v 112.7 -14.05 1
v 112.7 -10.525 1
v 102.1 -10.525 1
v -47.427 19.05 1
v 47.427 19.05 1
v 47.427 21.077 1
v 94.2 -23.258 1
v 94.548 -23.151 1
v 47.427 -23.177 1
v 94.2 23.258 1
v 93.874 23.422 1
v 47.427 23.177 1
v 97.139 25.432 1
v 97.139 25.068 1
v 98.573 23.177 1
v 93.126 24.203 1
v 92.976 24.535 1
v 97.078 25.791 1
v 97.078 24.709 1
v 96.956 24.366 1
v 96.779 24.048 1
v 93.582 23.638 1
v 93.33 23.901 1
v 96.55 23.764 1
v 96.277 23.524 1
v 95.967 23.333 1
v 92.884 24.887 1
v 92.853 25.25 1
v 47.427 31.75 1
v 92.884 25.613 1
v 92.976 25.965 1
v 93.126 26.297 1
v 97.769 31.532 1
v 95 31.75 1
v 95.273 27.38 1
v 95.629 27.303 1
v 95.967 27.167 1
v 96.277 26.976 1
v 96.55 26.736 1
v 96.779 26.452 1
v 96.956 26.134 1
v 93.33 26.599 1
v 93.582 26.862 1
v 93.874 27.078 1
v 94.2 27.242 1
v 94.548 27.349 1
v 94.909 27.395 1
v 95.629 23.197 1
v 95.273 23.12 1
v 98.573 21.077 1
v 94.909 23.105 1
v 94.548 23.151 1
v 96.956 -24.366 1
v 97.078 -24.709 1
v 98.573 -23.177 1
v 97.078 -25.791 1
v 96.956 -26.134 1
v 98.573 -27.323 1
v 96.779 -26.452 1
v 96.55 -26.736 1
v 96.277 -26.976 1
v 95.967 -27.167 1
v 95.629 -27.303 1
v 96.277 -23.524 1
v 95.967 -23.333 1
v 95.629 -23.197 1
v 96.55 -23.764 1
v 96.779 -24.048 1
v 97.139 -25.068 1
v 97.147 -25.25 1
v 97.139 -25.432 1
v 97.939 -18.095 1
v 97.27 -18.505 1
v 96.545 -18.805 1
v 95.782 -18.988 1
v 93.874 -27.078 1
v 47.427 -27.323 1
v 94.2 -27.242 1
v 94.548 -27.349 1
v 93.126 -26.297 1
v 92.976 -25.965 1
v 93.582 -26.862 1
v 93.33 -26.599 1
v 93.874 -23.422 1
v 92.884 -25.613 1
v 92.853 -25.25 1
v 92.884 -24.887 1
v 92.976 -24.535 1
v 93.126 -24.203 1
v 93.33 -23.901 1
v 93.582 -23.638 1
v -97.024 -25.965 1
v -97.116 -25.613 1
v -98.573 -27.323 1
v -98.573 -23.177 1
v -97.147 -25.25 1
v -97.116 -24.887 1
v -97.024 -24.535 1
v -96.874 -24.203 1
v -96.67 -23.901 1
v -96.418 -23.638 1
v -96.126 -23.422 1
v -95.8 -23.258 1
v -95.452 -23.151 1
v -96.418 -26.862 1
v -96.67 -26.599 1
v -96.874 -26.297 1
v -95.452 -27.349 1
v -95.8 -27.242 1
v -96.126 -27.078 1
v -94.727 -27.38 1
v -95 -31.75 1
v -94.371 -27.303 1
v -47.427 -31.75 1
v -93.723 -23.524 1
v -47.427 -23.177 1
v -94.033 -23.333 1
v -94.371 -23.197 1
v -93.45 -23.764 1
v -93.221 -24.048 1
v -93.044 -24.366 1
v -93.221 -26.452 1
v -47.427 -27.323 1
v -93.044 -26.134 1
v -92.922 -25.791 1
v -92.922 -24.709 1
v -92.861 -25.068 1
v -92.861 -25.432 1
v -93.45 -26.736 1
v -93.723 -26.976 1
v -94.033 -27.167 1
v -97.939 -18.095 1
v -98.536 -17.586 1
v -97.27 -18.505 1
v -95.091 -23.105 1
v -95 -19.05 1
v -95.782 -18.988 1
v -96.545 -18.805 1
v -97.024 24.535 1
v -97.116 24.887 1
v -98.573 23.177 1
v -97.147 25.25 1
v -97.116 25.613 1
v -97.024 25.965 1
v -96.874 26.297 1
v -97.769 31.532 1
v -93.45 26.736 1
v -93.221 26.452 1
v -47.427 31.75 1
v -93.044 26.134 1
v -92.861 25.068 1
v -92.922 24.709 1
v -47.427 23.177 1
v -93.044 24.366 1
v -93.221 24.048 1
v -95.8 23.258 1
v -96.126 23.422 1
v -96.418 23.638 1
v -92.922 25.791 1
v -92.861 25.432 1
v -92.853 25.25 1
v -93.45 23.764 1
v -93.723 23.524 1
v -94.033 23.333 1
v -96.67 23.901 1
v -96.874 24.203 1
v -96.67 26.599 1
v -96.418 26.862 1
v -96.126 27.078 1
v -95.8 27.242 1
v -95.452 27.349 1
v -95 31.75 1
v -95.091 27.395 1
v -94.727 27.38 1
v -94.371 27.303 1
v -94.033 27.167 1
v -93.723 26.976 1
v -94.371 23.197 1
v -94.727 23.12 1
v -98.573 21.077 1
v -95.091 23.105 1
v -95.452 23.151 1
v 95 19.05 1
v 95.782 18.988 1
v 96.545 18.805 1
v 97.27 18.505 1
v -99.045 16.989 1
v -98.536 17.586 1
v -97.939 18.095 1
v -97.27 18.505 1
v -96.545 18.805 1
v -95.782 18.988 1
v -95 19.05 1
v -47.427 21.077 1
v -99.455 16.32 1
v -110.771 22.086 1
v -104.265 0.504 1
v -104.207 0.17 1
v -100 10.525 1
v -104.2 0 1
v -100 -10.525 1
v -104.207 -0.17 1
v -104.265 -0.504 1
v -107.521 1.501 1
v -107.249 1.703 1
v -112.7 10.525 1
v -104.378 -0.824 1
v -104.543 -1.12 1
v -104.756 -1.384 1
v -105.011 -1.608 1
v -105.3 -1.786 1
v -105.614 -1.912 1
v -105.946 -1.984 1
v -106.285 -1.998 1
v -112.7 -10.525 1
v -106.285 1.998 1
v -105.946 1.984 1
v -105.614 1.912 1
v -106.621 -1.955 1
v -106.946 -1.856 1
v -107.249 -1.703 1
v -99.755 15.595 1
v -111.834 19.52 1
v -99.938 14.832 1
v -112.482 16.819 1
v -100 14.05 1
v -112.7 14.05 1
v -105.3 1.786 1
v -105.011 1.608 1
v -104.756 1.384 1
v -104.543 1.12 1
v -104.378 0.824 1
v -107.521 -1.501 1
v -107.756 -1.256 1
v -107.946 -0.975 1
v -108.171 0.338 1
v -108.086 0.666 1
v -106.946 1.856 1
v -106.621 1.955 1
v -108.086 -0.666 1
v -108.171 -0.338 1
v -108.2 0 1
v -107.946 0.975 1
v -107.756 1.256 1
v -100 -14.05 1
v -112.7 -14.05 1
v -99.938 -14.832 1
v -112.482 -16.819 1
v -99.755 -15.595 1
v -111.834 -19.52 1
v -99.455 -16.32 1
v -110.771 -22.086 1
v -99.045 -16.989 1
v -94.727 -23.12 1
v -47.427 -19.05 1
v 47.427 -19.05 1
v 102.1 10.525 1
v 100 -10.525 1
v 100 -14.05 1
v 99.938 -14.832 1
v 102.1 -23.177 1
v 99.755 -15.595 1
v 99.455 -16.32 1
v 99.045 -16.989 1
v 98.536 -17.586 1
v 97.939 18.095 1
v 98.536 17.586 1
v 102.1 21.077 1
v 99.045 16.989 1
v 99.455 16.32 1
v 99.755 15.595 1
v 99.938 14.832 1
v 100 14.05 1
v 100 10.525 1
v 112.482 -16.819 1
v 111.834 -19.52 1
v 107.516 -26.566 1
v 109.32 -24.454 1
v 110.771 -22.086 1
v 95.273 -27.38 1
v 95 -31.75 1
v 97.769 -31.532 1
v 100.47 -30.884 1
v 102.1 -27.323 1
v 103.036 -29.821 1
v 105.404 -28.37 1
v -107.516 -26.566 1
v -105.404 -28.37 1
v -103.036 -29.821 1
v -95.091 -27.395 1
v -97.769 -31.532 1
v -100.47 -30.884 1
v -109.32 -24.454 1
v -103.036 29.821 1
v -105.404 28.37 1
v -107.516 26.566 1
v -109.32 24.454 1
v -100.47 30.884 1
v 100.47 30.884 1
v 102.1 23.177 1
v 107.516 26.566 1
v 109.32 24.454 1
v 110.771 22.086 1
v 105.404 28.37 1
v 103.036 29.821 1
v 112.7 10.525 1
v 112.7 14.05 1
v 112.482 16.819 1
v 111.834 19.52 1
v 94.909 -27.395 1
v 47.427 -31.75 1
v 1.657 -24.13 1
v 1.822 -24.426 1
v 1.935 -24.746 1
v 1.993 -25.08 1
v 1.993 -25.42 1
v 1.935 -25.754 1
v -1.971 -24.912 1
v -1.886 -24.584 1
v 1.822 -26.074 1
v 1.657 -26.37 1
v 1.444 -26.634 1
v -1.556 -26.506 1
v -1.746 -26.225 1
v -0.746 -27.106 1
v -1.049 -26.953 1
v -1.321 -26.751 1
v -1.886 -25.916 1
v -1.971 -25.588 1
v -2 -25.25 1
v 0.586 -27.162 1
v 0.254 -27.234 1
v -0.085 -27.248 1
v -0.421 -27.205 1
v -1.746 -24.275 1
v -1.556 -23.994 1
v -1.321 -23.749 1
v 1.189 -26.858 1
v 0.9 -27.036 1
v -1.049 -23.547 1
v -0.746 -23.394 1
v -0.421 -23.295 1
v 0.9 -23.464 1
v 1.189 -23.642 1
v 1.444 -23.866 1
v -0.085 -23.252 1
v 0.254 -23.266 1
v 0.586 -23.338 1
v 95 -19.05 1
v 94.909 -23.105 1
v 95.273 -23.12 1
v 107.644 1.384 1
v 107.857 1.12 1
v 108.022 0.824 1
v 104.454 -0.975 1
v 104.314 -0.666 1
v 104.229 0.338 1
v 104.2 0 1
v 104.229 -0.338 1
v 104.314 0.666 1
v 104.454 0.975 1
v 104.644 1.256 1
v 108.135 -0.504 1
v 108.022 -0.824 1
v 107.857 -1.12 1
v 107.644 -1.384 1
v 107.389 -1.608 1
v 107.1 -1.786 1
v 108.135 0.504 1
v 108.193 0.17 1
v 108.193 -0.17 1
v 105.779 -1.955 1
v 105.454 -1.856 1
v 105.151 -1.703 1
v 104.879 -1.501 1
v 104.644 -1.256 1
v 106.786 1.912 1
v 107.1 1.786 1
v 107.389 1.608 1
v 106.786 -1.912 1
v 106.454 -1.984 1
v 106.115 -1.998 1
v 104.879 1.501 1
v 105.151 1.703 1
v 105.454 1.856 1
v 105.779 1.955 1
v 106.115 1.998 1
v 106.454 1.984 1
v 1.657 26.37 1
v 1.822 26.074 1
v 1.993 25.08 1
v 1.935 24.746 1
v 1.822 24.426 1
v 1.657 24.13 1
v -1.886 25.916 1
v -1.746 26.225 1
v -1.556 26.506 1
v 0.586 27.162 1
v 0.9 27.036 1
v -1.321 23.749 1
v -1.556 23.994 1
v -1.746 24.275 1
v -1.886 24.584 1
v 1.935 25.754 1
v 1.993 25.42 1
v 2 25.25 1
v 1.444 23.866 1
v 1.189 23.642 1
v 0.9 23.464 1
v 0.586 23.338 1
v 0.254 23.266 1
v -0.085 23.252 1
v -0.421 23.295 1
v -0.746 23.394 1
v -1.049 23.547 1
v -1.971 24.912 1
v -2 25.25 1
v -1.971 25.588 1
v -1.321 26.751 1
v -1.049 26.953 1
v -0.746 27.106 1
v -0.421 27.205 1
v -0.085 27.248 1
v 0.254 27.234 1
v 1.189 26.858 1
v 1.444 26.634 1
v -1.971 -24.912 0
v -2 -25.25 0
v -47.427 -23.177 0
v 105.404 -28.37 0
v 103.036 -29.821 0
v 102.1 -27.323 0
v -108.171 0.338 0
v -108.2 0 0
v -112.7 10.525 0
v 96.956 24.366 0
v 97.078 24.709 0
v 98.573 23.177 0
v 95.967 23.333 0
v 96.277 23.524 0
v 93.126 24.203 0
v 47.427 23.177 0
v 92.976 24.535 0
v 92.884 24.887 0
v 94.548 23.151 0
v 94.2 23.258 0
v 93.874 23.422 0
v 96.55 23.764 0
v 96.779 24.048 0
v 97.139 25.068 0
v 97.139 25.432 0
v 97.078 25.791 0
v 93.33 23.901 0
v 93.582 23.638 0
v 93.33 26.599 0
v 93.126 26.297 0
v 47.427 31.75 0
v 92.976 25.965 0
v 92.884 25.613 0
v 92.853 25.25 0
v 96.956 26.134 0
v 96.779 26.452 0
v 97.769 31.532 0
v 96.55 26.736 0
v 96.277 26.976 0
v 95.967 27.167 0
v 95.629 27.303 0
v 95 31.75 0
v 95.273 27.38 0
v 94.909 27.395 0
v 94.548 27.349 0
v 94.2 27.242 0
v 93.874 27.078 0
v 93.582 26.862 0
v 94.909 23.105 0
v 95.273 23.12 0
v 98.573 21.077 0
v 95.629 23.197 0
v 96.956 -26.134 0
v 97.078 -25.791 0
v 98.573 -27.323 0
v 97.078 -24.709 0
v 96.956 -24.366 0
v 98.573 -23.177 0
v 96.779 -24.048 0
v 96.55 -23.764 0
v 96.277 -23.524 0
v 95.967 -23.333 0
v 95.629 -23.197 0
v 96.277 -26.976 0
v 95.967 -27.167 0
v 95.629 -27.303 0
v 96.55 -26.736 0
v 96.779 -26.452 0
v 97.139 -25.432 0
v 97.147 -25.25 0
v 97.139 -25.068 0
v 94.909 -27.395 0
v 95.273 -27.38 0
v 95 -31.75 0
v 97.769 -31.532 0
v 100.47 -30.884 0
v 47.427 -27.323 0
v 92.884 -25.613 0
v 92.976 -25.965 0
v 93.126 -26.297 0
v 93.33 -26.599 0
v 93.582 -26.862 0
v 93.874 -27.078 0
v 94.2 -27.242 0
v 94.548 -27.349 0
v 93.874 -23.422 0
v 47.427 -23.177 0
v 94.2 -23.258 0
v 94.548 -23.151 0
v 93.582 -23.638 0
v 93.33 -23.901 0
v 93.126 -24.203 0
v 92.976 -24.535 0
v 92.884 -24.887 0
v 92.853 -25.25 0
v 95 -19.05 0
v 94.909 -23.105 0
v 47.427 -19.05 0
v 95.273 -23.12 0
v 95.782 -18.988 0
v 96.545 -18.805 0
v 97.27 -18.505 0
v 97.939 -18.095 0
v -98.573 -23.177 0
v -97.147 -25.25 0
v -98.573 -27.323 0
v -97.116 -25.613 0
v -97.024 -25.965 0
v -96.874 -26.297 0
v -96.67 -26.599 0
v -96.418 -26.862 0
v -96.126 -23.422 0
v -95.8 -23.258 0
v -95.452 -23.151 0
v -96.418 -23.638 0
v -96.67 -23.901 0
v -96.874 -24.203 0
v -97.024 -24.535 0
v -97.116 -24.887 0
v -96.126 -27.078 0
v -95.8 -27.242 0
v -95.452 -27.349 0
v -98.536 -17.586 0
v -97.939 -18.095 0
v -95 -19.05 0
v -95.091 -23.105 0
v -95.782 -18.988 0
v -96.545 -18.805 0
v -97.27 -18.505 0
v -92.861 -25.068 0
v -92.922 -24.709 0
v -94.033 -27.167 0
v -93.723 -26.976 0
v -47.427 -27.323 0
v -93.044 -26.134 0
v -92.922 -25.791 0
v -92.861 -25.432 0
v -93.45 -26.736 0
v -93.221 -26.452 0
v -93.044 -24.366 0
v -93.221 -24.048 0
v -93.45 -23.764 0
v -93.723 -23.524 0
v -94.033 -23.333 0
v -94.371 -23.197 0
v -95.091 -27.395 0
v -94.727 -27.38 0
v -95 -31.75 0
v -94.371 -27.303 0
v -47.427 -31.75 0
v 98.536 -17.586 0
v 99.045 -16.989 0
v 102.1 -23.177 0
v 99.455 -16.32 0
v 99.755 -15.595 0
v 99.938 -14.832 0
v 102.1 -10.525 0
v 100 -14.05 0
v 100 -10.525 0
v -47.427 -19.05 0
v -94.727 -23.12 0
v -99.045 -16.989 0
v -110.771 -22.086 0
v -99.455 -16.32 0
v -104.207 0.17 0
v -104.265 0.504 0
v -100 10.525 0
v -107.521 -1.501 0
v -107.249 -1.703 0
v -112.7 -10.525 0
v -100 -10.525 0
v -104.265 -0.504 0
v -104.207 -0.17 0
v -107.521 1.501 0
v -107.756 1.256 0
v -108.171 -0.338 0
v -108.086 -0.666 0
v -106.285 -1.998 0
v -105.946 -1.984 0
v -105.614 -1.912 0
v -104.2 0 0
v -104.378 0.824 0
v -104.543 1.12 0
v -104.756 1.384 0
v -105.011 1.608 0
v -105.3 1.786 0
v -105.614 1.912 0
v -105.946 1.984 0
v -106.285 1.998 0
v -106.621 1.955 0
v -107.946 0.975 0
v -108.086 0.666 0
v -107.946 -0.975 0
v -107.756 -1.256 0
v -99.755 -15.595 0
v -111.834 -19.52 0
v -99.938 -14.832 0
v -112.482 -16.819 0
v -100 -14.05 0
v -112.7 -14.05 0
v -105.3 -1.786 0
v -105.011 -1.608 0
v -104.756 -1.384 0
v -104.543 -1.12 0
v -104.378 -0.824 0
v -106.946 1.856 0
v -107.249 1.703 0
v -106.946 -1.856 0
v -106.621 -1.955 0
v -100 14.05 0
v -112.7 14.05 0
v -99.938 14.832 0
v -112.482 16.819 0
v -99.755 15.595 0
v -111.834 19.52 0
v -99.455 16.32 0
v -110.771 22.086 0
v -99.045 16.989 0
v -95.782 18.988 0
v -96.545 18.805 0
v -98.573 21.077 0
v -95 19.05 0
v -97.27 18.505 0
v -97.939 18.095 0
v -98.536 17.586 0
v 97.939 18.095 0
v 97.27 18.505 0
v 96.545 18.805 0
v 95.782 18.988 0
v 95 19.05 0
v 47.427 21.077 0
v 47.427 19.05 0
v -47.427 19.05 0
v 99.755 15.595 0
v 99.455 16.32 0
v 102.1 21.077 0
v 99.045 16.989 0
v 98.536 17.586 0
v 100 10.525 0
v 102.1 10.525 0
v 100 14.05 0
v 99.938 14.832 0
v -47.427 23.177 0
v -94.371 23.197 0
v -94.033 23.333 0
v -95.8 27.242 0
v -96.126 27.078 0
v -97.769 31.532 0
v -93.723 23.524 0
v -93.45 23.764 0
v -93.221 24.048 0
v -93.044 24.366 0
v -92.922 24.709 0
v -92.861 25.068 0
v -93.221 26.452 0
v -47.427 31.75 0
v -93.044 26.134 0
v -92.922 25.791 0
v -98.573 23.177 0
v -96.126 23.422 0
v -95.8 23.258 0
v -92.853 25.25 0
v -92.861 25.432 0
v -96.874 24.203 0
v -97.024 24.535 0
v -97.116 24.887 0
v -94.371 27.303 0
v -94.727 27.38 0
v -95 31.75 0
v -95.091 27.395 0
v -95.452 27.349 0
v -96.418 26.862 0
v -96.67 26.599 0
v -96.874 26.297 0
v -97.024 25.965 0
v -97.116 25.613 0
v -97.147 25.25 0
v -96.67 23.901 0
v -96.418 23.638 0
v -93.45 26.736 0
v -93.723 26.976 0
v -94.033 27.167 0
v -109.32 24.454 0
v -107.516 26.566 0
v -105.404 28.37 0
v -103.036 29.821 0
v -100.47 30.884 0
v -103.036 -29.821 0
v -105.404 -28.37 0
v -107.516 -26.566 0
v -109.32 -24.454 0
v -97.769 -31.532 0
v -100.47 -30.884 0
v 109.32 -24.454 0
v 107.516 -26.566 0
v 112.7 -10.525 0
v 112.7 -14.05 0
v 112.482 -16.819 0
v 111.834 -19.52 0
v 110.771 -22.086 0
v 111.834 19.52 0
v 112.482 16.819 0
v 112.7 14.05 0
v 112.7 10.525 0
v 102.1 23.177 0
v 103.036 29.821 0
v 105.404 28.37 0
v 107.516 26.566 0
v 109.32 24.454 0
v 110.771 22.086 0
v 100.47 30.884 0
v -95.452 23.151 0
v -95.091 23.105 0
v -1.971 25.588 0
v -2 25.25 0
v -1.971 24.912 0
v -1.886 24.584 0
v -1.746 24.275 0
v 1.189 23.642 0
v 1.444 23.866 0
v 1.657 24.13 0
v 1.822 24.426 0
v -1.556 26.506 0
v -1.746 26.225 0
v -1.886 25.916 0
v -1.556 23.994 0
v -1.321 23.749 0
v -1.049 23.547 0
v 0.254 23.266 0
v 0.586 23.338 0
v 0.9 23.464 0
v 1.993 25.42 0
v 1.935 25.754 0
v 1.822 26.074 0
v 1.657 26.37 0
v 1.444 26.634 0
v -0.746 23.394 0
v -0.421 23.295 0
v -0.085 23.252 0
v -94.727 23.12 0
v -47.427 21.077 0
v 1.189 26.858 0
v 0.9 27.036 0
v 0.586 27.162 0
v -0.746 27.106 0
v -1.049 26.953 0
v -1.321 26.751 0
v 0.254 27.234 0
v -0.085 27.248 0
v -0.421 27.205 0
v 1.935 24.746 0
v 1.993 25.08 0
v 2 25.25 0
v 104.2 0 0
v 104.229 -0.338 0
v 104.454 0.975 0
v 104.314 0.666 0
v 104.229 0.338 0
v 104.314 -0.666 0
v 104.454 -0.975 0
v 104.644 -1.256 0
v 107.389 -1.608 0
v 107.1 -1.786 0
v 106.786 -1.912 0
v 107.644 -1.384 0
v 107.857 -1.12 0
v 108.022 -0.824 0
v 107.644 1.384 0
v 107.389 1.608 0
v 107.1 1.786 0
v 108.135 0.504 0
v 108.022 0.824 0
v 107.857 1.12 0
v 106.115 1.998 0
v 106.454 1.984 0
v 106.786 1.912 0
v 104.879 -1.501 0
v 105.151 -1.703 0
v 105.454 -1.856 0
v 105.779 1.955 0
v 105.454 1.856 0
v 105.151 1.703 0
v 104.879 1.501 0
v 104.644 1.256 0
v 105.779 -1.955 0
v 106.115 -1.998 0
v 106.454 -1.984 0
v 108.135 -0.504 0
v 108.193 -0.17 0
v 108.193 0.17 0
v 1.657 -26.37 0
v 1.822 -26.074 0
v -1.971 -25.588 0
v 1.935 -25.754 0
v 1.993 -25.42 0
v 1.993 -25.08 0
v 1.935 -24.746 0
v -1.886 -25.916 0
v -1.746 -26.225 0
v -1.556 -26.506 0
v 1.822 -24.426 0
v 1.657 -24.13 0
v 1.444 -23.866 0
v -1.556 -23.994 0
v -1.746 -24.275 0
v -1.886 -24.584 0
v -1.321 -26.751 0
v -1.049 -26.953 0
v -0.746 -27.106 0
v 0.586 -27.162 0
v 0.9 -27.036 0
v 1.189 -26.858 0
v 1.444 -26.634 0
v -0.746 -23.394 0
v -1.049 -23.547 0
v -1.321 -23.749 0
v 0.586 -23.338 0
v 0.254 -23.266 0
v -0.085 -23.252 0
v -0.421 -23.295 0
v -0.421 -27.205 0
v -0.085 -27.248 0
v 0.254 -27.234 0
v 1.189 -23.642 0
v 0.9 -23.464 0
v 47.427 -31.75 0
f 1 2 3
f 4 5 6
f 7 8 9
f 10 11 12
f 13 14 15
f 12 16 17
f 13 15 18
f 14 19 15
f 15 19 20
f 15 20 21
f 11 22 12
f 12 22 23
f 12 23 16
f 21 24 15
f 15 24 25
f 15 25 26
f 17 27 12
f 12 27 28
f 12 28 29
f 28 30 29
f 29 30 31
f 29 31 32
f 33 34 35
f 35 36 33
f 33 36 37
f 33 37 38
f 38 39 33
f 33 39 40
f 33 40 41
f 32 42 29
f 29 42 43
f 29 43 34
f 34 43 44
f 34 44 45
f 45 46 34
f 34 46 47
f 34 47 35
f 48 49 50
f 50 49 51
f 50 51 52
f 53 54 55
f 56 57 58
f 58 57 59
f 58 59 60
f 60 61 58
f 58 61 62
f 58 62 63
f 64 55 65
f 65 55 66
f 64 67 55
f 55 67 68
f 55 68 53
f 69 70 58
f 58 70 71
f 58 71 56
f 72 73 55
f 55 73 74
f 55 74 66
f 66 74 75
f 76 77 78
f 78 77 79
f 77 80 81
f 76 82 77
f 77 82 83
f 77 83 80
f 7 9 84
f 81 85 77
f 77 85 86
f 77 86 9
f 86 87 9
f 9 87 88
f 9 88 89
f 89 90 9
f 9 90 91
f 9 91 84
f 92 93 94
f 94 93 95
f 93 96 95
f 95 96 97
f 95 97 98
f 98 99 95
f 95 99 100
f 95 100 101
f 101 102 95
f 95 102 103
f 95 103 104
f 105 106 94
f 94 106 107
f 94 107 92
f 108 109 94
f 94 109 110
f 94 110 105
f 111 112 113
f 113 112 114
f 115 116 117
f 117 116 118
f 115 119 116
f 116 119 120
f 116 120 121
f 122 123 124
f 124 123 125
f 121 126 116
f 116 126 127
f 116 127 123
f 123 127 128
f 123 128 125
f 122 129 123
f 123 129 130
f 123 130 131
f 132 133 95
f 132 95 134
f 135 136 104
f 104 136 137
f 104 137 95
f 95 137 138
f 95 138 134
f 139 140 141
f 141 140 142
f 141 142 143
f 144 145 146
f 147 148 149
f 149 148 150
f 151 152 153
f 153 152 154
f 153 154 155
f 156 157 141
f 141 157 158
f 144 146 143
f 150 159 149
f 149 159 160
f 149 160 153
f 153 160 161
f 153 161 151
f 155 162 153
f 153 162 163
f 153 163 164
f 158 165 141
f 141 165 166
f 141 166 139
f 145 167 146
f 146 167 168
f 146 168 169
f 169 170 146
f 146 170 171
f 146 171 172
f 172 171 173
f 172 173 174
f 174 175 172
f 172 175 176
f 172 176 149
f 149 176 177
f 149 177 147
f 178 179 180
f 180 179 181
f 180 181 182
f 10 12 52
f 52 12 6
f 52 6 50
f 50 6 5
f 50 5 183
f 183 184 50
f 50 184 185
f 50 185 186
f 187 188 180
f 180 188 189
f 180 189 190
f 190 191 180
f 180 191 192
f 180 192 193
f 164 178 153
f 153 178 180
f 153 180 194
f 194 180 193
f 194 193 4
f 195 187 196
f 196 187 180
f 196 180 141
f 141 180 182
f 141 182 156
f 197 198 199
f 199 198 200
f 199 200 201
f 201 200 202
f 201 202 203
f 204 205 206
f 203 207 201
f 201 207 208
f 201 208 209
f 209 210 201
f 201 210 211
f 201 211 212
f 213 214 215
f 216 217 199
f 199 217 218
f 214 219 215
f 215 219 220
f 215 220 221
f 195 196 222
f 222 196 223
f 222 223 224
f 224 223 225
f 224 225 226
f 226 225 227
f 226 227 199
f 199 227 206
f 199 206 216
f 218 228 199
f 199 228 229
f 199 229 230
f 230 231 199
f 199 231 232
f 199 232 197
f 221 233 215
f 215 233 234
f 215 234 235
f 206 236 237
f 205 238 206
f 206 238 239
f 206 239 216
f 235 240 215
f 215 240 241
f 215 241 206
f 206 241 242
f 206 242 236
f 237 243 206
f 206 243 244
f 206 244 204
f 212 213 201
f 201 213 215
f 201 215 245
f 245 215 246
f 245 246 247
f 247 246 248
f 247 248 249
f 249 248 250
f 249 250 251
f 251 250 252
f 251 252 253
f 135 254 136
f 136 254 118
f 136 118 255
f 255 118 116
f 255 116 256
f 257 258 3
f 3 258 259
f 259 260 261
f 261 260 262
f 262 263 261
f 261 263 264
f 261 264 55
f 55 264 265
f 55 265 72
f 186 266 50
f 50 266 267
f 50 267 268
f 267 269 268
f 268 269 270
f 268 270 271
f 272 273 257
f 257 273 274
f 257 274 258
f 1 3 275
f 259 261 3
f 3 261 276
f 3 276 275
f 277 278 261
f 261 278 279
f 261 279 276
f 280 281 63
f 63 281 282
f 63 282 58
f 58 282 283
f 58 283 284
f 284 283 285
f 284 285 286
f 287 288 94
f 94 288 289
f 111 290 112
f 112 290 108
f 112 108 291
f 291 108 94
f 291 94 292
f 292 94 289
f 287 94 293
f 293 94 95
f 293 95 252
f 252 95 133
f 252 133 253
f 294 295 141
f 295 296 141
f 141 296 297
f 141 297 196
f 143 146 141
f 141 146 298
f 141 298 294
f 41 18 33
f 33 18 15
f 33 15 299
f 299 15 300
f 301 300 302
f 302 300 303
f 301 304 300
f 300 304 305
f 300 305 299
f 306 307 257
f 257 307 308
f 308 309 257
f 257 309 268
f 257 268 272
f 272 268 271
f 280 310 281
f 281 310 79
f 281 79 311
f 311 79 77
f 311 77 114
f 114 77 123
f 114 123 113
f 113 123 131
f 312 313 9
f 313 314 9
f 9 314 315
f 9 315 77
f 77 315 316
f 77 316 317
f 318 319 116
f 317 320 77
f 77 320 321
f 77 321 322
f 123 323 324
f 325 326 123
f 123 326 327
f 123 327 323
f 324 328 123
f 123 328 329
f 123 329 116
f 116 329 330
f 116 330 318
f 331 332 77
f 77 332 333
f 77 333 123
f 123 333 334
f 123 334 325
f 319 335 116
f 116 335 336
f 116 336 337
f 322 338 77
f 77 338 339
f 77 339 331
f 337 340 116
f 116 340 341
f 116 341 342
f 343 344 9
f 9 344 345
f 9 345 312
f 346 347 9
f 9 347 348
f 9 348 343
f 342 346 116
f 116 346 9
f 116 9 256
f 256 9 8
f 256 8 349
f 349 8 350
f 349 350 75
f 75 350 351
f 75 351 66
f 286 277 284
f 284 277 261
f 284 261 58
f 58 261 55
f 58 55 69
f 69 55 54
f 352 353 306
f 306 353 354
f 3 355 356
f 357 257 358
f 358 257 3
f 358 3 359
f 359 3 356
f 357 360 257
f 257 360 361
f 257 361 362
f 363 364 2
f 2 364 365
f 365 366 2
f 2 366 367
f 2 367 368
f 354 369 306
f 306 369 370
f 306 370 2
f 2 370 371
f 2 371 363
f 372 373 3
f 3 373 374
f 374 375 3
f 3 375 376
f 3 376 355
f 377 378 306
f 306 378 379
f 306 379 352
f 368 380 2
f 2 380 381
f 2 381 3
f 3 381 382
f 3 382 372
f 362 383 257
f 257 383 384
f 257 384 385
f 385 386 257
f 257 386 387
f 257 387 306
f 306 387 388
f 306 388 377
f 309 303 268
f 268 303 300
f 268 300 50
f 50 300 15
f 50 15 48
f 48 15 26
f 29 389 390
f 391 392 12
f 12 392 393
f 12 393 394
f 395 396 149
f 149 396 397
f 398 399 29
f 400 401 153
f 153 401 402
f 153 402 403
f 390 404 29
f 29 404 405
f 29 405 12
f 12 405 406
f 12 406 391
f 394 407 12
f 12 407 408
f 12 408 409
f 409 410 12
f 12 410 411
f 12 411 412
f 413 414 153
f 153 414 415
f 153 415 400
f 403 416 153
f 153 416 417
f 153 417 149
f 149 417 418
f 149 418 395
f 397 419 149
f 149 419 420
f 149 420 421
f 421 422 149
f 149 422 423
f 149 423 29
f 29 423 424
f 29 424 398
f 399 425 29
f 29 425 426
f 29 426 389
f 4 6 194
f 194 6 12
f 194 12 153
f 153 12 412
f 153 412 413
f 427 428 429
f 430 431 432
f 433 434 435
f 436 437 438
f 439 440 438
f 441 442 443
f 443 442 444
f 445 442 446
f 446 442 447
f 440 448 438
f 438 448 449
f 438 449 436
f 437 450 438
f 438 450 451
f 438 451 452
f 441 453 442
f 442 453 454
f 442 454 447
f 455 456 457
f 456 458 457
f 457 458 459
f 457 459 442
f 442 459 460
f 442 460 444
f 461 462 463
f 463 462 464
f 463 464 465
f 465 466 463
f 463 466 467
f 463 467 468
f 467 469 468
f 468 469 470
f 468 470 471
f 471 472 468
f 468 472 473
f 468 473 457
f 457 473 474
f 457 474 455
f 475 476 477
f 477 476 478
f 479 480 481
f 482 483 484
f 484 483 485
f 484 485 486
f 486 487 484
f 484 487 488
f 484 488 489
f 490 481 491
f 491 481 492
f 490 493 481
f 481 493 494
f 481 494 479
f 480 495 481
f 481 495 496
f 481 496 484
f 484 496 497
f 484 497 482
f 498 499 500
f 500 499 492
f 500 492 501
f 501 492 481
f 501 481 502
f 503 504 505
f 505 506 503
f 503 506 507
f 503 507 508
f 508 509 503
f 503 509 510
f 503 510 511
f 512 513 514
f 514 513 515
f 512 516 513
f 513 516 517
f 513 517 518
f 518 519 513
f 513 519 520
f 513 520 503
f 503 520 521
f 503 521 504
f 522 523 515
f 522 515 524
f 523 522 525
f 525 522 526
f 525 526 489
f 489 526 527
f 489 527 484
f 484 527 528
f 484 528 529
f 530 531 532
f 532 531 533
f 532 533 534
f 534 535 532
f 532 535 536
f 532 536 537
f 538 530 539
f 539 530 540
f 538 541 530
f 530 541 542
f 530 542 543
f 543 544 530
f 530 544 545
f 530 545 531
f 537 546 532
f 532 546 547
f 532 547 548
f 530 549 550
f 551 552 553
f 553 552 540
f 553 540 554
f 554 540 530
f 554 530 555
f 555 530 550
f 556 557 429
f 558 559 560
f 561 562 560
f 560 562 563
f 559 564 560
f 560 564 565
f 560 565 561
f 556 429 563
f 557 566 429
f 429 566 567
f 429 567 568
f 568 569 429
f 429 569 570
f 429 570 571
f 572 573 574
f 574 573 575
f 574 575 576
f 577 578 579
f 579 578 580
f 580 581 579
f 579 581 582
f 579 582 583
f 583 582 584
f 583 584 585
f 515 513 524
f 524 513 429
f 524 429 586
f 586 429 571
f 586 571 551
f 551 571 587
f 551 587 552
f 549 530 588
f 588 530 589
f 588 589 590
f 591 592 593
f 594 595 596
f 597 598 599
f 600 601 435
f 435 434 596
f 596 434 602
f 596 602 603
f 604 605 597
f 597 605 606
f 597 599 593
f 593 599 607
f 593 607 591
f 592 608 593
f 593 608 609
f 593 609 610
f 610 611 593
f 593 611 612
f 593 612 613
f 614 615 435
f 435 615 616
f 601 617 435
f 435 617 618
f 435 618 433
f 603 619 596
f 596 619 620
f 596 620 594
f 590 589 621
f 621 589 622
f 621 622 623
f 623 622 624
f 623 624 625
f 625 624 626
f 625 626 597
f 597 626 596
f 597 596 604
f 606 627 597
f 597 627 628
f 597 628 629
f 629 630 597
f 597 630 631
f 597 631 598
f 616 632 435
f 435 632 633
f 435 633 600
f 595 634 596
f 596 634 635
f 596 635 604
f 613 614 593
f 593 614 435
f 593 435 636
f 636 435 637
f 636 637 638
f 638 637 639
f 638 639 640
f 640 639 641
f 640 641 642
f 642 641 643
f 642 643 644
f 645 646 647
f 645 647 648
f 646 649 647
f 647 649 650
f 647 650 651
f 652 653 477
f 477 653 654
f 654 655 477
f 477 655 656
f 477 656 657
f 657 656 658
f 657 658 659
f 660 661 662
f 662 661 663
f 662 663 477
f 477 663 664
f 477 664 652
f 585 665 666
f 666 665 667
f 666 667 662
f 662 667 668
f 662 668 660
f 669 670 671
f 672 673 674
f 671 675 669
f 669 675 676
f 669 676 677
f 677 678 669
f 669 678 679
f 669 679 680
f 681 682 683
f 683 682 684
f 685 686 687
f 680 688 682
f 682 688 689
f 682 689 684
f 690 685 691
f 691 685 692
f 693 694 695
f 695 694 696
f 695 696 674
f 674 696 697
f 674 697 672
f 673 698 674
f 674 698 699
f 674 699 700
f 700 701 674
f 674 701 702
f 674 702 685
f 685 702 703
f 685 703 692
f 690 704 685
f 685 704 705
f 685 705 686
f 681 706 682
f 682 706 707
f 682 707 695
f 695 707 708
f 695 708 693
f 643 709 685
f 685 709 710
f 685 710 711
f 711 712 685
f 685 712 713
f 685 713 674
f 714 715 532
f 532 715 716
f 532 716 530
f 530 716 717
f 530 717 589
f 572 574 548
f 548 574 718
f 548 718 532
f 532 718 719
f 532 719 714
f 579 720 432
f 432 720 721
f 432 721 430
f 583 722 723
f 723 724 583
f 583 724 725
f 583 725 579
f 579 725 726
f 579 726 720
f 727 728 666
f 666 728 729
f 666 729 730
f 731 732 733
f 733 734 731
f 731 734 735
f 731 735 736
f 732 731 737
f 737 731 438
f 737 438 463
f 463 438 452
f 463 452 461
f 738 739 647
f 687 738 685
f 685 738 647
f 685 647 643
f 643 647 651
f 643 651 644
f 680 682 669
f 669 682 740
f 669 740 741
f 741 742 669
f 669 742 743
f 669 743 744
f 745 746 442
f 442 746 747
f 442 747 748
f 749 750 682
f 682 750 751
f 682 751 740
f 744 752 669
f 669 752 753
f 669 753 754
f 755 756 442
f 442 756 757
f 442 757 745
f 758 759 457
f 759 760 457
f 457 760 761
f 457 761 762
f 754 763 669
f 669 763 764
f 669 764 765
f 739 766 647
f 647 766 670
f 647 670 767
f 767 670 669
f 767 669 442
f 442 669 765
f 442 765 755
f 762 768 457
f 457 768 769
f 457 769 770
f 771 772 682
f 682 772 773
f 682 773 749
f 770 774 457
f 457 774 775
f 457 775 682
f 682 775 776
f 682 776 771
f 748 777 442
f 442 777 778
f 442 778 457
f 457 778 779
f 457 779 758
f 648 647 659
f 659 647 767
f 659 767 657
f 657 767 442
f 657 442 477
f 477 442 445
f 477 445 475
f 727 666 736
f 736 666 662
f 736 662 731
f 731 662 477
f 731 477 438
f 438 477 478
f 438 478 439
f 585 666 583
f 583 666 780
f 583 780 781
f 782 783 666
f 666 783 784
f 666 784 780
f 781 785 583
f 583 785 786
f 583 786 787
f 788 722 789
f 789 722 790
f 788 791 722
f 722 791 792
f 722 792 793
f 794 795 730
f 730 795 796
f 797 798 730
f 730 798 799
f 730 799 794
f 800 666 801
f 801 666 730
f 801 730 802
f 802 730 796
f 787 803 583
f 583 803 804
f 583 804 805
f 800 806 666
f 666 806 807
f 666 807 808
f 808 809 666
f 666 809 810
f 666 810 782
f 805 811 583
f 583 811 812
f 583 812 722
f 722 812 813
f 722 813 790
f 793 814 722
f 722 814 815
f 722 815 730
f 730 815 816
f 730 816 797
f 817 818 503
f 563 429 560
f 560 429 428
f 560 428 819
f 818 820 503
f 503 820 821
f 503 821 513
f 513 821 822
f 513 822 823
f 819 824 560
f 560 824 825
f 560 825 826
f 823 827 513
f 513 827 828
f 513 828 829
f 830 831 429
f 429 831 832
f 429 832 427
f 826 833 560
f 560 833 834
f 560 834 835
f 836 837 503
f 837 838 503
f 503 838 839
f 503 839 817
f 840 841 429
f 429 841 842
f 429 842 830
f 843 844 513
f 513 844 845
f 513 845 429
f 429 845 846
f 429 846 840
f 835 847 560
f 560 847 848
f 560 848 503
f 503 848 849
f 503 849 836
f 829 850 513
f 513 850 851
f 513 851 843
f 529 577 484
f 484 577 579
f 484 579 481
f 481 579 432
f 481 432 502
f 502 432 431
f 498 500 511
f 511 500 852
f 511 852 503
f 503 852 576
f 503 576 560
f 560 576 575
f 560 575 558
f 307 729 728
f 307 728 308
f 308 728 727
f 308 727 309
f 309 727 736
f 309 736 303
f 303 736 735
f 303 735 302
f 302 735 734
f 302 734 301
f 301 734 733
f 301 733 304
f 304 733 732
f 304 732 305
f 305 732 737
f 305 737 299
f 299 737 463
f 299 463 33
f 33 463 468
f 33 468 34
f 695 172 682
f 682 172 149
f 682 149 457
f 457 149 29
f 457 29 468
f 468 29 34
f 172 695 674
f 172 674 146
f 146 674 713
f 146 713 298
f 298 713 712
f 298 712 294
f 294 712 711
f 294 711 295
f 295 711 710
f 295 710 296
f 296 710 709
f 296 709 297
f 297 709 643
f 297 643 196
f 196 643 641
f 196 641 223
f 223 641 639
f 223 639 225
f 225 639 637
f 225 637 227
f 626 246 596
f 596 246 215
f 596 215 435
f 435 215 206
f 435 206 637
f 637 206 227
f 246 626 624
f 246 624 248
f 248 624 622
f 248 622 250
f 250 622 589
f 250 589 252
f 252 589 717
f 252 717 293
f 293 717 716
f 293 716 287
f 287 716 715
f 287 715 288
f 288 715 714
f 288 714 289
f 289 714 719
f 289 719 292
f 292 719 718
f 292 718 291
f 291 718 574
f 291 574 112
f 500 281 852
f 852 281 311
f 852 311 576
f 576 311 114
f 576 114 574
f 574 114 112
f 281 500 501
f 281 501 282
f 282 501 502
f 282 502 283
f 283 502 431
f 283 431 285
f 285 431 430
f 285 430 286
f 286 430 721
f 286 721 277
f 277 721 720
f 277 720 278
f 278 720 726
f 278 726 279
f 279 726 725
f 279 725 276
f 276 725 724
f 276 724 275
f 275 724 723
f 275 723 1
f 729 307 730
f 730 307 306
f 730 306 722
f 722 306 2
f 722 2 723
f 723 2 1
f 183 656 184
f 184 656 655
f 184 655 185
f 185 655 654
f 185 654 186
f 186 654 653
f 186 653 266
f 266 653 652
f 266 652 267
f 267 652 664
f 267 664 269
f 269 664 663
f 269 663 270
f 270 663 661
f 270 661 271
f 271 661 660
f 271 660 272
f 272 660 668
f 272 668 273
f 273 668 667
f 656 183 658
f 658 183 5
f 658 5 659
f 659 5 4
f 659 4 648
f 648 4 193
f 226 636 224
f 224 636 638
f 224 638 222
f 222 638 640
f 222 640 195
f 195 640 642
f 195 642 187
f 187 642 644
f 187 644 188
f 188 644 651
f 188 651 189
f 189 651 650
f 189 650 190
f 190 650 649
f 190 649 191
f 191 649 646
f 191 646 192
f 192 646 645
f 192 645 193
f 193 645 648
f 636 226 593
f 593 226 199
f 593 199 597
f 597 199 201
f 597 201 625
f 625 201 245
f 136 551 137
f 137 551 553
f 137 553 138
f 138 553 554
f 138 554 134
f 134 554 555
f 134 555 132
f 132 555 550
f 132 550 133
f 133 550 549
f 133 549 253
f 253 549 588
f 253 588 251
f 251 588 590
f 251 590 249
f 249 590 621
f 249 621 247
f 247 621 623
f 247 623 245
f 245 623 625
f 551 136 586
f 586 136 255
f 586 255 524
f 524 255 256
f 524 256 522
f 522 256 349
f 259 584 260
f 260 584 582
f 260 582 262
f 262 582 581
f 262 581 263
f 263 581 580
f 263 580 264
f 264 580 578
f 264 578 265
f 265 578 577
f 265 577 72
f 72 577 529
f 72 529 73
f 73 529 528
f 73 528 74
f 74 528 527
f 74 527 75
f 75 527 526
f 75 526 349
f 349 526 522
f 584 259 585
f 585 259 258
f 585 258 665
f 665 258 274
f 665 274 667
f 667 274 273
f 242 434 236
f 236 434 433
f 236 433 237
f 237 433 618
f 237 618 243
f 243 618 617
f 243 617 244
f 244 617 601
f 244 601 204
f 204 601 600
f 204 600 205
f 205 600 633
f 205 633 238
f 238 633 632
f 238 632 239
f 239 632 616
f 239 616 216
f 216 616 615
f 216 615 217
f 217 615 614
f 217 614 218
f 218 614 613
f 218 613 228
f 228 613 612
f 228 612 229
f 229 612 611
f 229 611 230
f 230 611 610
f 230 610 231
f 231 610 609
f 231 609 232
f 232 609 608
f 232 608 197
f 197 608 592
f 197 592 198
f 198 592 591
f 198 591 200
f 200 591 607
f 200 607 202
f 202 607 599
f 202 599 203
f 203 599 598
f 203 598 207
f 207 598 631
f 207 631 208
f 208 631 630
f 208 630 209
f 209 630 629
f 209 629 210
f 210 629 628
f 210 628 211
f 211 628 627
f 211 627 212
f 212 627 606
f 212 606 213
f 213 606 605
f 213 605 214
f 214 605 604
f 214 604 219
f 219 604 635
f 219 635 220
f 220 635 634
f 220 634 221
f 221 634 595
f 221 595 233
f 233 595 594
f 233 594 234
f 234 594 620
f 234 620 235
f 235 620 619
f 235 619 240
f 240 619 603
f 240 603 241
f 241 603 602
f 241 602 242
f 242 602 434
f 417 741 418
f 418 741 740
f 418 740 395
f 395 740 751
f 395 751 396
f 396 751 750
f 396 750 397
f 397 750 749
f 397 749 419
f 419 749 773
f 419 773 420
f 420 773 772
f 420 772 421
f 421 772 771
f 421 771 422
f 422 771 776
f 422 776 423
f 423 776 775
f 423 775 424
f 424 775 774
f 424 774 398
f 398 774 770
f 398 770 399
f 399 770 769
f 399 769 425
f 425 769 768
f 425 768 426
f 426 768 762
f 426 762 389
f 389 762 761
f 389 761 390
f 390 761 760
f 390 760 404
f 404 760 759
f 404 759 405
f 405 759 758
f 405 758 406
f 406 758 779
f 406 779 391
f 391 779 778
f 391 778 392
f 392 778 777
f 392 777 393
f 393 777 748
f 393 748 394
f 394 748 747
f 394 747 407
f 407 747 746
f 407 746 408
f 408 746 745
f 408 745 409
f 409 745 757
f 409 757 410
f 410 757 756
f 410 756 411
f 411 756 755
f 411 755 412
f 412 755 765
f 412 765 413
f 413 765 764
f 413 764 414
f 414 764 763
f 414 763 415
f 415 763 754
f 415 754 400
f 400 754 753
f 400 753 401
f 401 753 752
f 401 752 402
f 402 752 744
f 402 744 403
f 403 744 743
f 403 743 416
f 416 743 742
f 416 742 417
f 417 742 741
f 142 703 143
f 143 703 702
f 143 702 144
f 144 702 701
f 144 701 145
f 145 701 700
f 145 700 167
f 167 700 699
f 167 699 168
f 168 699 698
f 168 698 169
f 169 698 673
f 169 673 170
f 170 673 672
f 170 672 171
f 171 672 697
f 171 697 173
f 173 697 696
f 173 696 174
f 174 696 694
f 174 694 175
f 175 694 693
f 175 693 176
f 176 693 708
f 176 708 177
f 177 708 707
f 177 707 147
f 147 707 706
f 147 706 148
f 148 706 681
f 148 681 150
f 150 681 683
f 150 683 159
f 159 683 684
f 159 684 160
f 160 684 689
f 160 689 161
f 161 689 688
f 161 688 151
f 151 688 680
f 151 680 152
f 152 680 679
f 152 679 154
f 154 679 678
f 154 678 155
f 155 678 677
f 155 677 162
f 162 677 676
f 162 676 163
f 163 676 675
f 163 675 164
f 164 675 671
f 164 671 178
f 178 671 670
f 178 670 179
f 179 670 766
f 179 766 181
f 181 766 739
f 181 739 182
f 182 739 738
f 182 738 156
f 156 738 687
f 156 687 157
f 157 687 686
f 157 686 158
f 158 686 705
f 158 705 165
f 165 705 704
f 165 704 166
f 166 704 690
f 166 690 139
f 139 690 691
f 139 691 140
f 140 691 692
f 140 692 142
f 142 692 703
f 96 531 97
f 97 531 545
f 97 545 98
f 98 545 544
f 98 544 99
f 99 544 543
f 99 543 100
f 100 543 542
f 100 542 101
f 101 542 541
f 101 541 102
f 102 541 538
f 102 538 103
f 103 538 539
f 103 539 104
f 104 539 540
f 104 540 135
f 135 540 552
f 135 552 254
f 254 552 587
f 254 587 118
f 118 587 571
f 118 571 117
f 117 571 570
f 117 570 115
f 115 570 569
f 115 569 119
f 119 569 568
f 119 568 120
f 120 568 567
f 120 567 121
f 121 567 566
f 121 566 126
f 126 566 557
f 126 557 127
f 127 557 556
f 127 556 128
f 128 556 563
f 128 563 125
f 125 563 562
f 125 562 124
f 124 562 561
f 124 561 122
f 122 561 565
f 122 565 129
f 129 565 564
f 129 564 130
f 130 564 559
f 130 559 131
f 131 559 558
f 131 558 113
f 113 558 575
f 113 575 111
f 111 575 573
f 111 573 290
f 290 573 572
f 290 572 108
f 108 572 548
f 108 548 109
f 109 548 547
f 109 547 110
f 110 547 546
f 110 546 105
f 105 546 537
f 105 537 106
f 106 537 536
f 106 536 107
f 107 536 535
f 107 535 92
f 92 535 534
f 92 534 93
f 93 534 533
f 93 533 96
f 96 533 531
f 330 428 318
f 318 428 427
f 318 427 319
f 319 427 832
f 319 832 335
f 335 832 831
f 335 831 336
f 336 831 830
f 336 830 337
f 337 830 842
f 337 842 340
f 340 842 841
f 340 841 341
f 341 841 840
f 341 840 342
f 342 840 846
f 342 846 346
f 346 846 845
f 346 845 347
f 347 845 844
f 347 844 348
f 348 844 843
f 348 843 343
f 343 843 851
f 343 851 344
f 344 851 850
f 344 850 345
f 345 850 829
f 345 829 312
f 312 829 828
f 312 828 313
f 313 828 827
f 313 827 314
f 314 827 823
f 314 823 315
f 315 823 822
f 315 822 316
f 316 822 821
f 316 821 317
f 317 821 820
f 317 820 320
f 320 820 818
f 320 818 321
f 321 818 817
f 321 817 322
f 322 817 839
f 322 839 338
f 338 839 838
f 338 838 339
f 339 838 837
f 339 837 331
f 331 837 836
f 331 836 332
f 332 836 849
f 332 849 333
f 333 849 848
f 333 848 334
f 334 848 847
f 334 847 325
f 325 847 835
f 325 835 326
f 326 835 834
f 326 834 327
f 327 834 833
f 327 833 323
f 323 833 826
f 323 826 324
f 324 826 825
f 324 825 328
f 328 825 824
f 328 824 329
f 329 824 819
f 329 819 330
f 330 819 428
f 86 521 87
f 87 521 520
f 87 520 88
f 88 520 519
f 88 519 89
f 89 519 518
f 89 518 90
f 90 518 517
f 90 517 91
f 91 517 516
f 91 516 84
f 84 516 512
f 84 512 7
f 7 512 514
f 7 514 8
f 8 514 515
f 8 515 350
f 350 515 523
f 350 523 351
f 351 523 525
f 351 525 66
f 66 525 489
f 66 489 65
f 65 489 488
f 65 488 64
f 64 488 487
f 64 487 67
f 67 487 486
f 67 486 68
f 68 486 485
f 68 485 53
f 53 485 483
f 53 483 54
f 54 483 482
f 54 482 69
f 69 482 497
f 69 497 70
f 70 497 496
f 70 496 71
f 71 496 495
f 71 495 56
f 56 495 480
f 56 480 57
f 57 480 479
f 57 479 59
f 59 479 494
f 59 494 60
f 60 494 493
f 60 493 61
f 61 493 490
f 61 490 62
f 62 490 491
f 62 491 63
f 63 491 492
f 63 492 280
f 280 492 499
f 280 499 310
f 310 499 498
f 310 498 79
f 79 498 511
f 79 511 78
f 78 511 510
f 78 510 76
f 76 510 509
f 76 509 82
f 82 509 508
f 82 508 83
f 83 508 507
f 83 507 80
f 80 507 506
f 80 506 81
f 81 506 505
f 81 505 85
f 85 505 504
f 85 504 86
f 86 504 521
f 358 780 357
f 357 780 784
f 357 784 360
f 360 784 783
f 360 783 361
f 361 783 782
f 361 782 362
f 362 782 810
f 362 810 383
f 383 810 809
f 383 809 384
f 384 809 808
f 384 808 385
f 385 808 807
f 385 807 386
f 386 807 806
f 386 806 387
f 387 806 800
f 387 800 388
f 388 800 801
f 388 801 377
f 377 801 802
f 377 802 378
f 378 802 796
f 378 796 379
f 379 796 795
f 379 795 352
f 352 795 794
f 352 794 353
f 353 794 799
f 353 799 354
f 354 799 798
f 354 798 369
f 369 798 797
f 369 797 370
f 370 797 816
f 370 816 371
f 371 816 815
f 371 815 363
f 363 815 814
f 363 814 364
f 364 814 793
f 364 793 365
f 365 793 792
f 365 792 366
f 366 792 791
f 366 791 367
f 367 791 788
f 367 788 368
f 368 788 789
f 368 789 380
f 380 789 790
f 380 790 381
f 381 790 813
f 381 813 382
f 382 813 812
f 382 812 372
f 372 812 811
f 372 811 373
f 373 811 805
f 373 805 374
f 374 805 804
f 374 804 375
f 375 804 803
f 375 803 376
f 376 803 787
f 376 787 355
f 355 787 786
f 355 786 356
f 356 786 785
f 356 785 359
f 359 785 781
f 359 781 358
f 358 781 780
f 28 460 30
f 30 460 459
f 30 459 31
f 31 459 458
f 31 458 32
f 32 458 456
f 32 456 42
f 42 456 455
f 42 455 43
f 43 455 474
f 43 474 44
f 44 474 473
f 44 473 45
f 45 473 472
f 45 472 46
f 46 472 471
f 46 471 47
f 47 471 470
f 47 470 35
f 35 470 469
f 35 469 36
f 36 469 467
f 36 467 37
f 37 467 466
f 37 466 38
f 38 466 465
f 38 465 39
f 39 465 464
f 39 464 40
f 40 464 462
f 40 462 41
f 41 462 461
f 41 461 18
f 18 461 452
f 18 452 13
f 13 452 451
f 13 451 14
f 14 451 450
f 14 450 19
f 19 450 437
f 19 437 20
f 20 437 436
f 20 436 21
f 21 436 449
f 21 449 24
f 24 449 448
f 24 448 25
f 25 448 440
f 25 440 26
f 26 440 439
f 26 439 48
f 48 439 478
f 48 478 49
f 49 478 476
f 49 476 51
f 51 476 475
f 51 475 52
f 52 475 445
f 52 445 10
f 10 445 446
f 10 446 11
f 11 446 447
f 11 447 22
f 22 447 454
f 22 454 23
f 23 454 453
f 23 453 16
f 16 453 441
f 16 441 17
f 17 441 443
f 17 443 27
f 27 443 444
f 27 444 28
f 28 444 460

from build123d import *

# Parameters (mm, degrees)
ESQUISSE1_R        = 2
ESQUISSE1_R_2      = 2.146897886
BOSS_EXTRU_1_DEPTH = 1


with BuildPart() as part:
    # Esquisse1 → Boss.-Extru.1 (new body)
    with BuildSketch(Plane.XY):
        with BuildLine():
            Line((-95, -31.75), (95, -31.75))
            ThreePointArc((95, -31.75), (107.515790027, -26.565790027), (112.7, -14.05))
            Line((112.7, -14.05), (112.7, 14.05))
            ThreePointArc((112.7, 14.05), (107.515790027, 26.565790027), (95, 31.75))
            Line((95, 31.75), (-95, 31.75))
            ThreePointArc((-95, 31.75), (-107.515790027, 26.565790027), (-112.7, 14.05))
            Line((-112.7, 14.05), (-112.7, -14.05))
            ThreePointArc((-112.7, -14.05), (-107.515790027, -26.565790027), (-95, -31.75))
        make_face()
        with Locations((-106.2, 0)):
            Circle(ESQUISSE1_R, mode=Mode.SUBTRACT)
        with Locations((0, 25.25)):
            Circle(ESQUISSE1_R, mode=Mode.SUBTRACT)
        with Locations((-95, 25.25)):
            Circle(ESQUISSE1_R_2, mode=Mode.SUBTRACT)
        with Locations(Location((-95, -25.25, 0), (0, 0, 180))):
            Circle(ESQUISSE1_R_2, mode=Mode.SUBTRACT)
        with Locations(Location((0, -25.25, 0), (0, 0, 180))):
            Circle(ESQUISSE1_R, mode=Mode.SUBTRACT)
        with Locations((95, -25.25)):
            Circle(ESQUISSE1_R_2, mode=Mode.SUBTRACT)
        with Locations(Location((106.2, 0, 0), (0, 0, 180))):
            Circle(ESQUISSE1_R, mode=Mode.SUBTRACT)
        with Locations(Location((95, 25.25, 0), (0, 0, 180))):
            Circle(ESQUISSE1_R_2, mode=Mode.SUBTRACT)
        with BuildLine():
            Line((-95, -19.05), (95, -19.05))
            ThreePointArc((95, -19.05), (98.535533906, -17.585533906), (100, -14.05))
            Line((100, -14.05), (100, 14.05))
            ThreePointArc((100, 14.05), (98.535533906, 17.585533906), (95, 19.05))
            Line((95, 19.05), (-95, 19.05))
            ThreePointArc((-95, 19.05), (-98.535533906, 17.585533906), (-100, 14.05))
            Line((-100, 14.05), (-100, -14.05))
            ThreePointArc((-100, -14.05), (-98.535533906, -17.585533906), (-95, -19.05))
        make_face(mode=Mode.SUBTRACT)
    extrude(amount=BOSS_EXTRU_1_DEPTH)


solid = part.part
